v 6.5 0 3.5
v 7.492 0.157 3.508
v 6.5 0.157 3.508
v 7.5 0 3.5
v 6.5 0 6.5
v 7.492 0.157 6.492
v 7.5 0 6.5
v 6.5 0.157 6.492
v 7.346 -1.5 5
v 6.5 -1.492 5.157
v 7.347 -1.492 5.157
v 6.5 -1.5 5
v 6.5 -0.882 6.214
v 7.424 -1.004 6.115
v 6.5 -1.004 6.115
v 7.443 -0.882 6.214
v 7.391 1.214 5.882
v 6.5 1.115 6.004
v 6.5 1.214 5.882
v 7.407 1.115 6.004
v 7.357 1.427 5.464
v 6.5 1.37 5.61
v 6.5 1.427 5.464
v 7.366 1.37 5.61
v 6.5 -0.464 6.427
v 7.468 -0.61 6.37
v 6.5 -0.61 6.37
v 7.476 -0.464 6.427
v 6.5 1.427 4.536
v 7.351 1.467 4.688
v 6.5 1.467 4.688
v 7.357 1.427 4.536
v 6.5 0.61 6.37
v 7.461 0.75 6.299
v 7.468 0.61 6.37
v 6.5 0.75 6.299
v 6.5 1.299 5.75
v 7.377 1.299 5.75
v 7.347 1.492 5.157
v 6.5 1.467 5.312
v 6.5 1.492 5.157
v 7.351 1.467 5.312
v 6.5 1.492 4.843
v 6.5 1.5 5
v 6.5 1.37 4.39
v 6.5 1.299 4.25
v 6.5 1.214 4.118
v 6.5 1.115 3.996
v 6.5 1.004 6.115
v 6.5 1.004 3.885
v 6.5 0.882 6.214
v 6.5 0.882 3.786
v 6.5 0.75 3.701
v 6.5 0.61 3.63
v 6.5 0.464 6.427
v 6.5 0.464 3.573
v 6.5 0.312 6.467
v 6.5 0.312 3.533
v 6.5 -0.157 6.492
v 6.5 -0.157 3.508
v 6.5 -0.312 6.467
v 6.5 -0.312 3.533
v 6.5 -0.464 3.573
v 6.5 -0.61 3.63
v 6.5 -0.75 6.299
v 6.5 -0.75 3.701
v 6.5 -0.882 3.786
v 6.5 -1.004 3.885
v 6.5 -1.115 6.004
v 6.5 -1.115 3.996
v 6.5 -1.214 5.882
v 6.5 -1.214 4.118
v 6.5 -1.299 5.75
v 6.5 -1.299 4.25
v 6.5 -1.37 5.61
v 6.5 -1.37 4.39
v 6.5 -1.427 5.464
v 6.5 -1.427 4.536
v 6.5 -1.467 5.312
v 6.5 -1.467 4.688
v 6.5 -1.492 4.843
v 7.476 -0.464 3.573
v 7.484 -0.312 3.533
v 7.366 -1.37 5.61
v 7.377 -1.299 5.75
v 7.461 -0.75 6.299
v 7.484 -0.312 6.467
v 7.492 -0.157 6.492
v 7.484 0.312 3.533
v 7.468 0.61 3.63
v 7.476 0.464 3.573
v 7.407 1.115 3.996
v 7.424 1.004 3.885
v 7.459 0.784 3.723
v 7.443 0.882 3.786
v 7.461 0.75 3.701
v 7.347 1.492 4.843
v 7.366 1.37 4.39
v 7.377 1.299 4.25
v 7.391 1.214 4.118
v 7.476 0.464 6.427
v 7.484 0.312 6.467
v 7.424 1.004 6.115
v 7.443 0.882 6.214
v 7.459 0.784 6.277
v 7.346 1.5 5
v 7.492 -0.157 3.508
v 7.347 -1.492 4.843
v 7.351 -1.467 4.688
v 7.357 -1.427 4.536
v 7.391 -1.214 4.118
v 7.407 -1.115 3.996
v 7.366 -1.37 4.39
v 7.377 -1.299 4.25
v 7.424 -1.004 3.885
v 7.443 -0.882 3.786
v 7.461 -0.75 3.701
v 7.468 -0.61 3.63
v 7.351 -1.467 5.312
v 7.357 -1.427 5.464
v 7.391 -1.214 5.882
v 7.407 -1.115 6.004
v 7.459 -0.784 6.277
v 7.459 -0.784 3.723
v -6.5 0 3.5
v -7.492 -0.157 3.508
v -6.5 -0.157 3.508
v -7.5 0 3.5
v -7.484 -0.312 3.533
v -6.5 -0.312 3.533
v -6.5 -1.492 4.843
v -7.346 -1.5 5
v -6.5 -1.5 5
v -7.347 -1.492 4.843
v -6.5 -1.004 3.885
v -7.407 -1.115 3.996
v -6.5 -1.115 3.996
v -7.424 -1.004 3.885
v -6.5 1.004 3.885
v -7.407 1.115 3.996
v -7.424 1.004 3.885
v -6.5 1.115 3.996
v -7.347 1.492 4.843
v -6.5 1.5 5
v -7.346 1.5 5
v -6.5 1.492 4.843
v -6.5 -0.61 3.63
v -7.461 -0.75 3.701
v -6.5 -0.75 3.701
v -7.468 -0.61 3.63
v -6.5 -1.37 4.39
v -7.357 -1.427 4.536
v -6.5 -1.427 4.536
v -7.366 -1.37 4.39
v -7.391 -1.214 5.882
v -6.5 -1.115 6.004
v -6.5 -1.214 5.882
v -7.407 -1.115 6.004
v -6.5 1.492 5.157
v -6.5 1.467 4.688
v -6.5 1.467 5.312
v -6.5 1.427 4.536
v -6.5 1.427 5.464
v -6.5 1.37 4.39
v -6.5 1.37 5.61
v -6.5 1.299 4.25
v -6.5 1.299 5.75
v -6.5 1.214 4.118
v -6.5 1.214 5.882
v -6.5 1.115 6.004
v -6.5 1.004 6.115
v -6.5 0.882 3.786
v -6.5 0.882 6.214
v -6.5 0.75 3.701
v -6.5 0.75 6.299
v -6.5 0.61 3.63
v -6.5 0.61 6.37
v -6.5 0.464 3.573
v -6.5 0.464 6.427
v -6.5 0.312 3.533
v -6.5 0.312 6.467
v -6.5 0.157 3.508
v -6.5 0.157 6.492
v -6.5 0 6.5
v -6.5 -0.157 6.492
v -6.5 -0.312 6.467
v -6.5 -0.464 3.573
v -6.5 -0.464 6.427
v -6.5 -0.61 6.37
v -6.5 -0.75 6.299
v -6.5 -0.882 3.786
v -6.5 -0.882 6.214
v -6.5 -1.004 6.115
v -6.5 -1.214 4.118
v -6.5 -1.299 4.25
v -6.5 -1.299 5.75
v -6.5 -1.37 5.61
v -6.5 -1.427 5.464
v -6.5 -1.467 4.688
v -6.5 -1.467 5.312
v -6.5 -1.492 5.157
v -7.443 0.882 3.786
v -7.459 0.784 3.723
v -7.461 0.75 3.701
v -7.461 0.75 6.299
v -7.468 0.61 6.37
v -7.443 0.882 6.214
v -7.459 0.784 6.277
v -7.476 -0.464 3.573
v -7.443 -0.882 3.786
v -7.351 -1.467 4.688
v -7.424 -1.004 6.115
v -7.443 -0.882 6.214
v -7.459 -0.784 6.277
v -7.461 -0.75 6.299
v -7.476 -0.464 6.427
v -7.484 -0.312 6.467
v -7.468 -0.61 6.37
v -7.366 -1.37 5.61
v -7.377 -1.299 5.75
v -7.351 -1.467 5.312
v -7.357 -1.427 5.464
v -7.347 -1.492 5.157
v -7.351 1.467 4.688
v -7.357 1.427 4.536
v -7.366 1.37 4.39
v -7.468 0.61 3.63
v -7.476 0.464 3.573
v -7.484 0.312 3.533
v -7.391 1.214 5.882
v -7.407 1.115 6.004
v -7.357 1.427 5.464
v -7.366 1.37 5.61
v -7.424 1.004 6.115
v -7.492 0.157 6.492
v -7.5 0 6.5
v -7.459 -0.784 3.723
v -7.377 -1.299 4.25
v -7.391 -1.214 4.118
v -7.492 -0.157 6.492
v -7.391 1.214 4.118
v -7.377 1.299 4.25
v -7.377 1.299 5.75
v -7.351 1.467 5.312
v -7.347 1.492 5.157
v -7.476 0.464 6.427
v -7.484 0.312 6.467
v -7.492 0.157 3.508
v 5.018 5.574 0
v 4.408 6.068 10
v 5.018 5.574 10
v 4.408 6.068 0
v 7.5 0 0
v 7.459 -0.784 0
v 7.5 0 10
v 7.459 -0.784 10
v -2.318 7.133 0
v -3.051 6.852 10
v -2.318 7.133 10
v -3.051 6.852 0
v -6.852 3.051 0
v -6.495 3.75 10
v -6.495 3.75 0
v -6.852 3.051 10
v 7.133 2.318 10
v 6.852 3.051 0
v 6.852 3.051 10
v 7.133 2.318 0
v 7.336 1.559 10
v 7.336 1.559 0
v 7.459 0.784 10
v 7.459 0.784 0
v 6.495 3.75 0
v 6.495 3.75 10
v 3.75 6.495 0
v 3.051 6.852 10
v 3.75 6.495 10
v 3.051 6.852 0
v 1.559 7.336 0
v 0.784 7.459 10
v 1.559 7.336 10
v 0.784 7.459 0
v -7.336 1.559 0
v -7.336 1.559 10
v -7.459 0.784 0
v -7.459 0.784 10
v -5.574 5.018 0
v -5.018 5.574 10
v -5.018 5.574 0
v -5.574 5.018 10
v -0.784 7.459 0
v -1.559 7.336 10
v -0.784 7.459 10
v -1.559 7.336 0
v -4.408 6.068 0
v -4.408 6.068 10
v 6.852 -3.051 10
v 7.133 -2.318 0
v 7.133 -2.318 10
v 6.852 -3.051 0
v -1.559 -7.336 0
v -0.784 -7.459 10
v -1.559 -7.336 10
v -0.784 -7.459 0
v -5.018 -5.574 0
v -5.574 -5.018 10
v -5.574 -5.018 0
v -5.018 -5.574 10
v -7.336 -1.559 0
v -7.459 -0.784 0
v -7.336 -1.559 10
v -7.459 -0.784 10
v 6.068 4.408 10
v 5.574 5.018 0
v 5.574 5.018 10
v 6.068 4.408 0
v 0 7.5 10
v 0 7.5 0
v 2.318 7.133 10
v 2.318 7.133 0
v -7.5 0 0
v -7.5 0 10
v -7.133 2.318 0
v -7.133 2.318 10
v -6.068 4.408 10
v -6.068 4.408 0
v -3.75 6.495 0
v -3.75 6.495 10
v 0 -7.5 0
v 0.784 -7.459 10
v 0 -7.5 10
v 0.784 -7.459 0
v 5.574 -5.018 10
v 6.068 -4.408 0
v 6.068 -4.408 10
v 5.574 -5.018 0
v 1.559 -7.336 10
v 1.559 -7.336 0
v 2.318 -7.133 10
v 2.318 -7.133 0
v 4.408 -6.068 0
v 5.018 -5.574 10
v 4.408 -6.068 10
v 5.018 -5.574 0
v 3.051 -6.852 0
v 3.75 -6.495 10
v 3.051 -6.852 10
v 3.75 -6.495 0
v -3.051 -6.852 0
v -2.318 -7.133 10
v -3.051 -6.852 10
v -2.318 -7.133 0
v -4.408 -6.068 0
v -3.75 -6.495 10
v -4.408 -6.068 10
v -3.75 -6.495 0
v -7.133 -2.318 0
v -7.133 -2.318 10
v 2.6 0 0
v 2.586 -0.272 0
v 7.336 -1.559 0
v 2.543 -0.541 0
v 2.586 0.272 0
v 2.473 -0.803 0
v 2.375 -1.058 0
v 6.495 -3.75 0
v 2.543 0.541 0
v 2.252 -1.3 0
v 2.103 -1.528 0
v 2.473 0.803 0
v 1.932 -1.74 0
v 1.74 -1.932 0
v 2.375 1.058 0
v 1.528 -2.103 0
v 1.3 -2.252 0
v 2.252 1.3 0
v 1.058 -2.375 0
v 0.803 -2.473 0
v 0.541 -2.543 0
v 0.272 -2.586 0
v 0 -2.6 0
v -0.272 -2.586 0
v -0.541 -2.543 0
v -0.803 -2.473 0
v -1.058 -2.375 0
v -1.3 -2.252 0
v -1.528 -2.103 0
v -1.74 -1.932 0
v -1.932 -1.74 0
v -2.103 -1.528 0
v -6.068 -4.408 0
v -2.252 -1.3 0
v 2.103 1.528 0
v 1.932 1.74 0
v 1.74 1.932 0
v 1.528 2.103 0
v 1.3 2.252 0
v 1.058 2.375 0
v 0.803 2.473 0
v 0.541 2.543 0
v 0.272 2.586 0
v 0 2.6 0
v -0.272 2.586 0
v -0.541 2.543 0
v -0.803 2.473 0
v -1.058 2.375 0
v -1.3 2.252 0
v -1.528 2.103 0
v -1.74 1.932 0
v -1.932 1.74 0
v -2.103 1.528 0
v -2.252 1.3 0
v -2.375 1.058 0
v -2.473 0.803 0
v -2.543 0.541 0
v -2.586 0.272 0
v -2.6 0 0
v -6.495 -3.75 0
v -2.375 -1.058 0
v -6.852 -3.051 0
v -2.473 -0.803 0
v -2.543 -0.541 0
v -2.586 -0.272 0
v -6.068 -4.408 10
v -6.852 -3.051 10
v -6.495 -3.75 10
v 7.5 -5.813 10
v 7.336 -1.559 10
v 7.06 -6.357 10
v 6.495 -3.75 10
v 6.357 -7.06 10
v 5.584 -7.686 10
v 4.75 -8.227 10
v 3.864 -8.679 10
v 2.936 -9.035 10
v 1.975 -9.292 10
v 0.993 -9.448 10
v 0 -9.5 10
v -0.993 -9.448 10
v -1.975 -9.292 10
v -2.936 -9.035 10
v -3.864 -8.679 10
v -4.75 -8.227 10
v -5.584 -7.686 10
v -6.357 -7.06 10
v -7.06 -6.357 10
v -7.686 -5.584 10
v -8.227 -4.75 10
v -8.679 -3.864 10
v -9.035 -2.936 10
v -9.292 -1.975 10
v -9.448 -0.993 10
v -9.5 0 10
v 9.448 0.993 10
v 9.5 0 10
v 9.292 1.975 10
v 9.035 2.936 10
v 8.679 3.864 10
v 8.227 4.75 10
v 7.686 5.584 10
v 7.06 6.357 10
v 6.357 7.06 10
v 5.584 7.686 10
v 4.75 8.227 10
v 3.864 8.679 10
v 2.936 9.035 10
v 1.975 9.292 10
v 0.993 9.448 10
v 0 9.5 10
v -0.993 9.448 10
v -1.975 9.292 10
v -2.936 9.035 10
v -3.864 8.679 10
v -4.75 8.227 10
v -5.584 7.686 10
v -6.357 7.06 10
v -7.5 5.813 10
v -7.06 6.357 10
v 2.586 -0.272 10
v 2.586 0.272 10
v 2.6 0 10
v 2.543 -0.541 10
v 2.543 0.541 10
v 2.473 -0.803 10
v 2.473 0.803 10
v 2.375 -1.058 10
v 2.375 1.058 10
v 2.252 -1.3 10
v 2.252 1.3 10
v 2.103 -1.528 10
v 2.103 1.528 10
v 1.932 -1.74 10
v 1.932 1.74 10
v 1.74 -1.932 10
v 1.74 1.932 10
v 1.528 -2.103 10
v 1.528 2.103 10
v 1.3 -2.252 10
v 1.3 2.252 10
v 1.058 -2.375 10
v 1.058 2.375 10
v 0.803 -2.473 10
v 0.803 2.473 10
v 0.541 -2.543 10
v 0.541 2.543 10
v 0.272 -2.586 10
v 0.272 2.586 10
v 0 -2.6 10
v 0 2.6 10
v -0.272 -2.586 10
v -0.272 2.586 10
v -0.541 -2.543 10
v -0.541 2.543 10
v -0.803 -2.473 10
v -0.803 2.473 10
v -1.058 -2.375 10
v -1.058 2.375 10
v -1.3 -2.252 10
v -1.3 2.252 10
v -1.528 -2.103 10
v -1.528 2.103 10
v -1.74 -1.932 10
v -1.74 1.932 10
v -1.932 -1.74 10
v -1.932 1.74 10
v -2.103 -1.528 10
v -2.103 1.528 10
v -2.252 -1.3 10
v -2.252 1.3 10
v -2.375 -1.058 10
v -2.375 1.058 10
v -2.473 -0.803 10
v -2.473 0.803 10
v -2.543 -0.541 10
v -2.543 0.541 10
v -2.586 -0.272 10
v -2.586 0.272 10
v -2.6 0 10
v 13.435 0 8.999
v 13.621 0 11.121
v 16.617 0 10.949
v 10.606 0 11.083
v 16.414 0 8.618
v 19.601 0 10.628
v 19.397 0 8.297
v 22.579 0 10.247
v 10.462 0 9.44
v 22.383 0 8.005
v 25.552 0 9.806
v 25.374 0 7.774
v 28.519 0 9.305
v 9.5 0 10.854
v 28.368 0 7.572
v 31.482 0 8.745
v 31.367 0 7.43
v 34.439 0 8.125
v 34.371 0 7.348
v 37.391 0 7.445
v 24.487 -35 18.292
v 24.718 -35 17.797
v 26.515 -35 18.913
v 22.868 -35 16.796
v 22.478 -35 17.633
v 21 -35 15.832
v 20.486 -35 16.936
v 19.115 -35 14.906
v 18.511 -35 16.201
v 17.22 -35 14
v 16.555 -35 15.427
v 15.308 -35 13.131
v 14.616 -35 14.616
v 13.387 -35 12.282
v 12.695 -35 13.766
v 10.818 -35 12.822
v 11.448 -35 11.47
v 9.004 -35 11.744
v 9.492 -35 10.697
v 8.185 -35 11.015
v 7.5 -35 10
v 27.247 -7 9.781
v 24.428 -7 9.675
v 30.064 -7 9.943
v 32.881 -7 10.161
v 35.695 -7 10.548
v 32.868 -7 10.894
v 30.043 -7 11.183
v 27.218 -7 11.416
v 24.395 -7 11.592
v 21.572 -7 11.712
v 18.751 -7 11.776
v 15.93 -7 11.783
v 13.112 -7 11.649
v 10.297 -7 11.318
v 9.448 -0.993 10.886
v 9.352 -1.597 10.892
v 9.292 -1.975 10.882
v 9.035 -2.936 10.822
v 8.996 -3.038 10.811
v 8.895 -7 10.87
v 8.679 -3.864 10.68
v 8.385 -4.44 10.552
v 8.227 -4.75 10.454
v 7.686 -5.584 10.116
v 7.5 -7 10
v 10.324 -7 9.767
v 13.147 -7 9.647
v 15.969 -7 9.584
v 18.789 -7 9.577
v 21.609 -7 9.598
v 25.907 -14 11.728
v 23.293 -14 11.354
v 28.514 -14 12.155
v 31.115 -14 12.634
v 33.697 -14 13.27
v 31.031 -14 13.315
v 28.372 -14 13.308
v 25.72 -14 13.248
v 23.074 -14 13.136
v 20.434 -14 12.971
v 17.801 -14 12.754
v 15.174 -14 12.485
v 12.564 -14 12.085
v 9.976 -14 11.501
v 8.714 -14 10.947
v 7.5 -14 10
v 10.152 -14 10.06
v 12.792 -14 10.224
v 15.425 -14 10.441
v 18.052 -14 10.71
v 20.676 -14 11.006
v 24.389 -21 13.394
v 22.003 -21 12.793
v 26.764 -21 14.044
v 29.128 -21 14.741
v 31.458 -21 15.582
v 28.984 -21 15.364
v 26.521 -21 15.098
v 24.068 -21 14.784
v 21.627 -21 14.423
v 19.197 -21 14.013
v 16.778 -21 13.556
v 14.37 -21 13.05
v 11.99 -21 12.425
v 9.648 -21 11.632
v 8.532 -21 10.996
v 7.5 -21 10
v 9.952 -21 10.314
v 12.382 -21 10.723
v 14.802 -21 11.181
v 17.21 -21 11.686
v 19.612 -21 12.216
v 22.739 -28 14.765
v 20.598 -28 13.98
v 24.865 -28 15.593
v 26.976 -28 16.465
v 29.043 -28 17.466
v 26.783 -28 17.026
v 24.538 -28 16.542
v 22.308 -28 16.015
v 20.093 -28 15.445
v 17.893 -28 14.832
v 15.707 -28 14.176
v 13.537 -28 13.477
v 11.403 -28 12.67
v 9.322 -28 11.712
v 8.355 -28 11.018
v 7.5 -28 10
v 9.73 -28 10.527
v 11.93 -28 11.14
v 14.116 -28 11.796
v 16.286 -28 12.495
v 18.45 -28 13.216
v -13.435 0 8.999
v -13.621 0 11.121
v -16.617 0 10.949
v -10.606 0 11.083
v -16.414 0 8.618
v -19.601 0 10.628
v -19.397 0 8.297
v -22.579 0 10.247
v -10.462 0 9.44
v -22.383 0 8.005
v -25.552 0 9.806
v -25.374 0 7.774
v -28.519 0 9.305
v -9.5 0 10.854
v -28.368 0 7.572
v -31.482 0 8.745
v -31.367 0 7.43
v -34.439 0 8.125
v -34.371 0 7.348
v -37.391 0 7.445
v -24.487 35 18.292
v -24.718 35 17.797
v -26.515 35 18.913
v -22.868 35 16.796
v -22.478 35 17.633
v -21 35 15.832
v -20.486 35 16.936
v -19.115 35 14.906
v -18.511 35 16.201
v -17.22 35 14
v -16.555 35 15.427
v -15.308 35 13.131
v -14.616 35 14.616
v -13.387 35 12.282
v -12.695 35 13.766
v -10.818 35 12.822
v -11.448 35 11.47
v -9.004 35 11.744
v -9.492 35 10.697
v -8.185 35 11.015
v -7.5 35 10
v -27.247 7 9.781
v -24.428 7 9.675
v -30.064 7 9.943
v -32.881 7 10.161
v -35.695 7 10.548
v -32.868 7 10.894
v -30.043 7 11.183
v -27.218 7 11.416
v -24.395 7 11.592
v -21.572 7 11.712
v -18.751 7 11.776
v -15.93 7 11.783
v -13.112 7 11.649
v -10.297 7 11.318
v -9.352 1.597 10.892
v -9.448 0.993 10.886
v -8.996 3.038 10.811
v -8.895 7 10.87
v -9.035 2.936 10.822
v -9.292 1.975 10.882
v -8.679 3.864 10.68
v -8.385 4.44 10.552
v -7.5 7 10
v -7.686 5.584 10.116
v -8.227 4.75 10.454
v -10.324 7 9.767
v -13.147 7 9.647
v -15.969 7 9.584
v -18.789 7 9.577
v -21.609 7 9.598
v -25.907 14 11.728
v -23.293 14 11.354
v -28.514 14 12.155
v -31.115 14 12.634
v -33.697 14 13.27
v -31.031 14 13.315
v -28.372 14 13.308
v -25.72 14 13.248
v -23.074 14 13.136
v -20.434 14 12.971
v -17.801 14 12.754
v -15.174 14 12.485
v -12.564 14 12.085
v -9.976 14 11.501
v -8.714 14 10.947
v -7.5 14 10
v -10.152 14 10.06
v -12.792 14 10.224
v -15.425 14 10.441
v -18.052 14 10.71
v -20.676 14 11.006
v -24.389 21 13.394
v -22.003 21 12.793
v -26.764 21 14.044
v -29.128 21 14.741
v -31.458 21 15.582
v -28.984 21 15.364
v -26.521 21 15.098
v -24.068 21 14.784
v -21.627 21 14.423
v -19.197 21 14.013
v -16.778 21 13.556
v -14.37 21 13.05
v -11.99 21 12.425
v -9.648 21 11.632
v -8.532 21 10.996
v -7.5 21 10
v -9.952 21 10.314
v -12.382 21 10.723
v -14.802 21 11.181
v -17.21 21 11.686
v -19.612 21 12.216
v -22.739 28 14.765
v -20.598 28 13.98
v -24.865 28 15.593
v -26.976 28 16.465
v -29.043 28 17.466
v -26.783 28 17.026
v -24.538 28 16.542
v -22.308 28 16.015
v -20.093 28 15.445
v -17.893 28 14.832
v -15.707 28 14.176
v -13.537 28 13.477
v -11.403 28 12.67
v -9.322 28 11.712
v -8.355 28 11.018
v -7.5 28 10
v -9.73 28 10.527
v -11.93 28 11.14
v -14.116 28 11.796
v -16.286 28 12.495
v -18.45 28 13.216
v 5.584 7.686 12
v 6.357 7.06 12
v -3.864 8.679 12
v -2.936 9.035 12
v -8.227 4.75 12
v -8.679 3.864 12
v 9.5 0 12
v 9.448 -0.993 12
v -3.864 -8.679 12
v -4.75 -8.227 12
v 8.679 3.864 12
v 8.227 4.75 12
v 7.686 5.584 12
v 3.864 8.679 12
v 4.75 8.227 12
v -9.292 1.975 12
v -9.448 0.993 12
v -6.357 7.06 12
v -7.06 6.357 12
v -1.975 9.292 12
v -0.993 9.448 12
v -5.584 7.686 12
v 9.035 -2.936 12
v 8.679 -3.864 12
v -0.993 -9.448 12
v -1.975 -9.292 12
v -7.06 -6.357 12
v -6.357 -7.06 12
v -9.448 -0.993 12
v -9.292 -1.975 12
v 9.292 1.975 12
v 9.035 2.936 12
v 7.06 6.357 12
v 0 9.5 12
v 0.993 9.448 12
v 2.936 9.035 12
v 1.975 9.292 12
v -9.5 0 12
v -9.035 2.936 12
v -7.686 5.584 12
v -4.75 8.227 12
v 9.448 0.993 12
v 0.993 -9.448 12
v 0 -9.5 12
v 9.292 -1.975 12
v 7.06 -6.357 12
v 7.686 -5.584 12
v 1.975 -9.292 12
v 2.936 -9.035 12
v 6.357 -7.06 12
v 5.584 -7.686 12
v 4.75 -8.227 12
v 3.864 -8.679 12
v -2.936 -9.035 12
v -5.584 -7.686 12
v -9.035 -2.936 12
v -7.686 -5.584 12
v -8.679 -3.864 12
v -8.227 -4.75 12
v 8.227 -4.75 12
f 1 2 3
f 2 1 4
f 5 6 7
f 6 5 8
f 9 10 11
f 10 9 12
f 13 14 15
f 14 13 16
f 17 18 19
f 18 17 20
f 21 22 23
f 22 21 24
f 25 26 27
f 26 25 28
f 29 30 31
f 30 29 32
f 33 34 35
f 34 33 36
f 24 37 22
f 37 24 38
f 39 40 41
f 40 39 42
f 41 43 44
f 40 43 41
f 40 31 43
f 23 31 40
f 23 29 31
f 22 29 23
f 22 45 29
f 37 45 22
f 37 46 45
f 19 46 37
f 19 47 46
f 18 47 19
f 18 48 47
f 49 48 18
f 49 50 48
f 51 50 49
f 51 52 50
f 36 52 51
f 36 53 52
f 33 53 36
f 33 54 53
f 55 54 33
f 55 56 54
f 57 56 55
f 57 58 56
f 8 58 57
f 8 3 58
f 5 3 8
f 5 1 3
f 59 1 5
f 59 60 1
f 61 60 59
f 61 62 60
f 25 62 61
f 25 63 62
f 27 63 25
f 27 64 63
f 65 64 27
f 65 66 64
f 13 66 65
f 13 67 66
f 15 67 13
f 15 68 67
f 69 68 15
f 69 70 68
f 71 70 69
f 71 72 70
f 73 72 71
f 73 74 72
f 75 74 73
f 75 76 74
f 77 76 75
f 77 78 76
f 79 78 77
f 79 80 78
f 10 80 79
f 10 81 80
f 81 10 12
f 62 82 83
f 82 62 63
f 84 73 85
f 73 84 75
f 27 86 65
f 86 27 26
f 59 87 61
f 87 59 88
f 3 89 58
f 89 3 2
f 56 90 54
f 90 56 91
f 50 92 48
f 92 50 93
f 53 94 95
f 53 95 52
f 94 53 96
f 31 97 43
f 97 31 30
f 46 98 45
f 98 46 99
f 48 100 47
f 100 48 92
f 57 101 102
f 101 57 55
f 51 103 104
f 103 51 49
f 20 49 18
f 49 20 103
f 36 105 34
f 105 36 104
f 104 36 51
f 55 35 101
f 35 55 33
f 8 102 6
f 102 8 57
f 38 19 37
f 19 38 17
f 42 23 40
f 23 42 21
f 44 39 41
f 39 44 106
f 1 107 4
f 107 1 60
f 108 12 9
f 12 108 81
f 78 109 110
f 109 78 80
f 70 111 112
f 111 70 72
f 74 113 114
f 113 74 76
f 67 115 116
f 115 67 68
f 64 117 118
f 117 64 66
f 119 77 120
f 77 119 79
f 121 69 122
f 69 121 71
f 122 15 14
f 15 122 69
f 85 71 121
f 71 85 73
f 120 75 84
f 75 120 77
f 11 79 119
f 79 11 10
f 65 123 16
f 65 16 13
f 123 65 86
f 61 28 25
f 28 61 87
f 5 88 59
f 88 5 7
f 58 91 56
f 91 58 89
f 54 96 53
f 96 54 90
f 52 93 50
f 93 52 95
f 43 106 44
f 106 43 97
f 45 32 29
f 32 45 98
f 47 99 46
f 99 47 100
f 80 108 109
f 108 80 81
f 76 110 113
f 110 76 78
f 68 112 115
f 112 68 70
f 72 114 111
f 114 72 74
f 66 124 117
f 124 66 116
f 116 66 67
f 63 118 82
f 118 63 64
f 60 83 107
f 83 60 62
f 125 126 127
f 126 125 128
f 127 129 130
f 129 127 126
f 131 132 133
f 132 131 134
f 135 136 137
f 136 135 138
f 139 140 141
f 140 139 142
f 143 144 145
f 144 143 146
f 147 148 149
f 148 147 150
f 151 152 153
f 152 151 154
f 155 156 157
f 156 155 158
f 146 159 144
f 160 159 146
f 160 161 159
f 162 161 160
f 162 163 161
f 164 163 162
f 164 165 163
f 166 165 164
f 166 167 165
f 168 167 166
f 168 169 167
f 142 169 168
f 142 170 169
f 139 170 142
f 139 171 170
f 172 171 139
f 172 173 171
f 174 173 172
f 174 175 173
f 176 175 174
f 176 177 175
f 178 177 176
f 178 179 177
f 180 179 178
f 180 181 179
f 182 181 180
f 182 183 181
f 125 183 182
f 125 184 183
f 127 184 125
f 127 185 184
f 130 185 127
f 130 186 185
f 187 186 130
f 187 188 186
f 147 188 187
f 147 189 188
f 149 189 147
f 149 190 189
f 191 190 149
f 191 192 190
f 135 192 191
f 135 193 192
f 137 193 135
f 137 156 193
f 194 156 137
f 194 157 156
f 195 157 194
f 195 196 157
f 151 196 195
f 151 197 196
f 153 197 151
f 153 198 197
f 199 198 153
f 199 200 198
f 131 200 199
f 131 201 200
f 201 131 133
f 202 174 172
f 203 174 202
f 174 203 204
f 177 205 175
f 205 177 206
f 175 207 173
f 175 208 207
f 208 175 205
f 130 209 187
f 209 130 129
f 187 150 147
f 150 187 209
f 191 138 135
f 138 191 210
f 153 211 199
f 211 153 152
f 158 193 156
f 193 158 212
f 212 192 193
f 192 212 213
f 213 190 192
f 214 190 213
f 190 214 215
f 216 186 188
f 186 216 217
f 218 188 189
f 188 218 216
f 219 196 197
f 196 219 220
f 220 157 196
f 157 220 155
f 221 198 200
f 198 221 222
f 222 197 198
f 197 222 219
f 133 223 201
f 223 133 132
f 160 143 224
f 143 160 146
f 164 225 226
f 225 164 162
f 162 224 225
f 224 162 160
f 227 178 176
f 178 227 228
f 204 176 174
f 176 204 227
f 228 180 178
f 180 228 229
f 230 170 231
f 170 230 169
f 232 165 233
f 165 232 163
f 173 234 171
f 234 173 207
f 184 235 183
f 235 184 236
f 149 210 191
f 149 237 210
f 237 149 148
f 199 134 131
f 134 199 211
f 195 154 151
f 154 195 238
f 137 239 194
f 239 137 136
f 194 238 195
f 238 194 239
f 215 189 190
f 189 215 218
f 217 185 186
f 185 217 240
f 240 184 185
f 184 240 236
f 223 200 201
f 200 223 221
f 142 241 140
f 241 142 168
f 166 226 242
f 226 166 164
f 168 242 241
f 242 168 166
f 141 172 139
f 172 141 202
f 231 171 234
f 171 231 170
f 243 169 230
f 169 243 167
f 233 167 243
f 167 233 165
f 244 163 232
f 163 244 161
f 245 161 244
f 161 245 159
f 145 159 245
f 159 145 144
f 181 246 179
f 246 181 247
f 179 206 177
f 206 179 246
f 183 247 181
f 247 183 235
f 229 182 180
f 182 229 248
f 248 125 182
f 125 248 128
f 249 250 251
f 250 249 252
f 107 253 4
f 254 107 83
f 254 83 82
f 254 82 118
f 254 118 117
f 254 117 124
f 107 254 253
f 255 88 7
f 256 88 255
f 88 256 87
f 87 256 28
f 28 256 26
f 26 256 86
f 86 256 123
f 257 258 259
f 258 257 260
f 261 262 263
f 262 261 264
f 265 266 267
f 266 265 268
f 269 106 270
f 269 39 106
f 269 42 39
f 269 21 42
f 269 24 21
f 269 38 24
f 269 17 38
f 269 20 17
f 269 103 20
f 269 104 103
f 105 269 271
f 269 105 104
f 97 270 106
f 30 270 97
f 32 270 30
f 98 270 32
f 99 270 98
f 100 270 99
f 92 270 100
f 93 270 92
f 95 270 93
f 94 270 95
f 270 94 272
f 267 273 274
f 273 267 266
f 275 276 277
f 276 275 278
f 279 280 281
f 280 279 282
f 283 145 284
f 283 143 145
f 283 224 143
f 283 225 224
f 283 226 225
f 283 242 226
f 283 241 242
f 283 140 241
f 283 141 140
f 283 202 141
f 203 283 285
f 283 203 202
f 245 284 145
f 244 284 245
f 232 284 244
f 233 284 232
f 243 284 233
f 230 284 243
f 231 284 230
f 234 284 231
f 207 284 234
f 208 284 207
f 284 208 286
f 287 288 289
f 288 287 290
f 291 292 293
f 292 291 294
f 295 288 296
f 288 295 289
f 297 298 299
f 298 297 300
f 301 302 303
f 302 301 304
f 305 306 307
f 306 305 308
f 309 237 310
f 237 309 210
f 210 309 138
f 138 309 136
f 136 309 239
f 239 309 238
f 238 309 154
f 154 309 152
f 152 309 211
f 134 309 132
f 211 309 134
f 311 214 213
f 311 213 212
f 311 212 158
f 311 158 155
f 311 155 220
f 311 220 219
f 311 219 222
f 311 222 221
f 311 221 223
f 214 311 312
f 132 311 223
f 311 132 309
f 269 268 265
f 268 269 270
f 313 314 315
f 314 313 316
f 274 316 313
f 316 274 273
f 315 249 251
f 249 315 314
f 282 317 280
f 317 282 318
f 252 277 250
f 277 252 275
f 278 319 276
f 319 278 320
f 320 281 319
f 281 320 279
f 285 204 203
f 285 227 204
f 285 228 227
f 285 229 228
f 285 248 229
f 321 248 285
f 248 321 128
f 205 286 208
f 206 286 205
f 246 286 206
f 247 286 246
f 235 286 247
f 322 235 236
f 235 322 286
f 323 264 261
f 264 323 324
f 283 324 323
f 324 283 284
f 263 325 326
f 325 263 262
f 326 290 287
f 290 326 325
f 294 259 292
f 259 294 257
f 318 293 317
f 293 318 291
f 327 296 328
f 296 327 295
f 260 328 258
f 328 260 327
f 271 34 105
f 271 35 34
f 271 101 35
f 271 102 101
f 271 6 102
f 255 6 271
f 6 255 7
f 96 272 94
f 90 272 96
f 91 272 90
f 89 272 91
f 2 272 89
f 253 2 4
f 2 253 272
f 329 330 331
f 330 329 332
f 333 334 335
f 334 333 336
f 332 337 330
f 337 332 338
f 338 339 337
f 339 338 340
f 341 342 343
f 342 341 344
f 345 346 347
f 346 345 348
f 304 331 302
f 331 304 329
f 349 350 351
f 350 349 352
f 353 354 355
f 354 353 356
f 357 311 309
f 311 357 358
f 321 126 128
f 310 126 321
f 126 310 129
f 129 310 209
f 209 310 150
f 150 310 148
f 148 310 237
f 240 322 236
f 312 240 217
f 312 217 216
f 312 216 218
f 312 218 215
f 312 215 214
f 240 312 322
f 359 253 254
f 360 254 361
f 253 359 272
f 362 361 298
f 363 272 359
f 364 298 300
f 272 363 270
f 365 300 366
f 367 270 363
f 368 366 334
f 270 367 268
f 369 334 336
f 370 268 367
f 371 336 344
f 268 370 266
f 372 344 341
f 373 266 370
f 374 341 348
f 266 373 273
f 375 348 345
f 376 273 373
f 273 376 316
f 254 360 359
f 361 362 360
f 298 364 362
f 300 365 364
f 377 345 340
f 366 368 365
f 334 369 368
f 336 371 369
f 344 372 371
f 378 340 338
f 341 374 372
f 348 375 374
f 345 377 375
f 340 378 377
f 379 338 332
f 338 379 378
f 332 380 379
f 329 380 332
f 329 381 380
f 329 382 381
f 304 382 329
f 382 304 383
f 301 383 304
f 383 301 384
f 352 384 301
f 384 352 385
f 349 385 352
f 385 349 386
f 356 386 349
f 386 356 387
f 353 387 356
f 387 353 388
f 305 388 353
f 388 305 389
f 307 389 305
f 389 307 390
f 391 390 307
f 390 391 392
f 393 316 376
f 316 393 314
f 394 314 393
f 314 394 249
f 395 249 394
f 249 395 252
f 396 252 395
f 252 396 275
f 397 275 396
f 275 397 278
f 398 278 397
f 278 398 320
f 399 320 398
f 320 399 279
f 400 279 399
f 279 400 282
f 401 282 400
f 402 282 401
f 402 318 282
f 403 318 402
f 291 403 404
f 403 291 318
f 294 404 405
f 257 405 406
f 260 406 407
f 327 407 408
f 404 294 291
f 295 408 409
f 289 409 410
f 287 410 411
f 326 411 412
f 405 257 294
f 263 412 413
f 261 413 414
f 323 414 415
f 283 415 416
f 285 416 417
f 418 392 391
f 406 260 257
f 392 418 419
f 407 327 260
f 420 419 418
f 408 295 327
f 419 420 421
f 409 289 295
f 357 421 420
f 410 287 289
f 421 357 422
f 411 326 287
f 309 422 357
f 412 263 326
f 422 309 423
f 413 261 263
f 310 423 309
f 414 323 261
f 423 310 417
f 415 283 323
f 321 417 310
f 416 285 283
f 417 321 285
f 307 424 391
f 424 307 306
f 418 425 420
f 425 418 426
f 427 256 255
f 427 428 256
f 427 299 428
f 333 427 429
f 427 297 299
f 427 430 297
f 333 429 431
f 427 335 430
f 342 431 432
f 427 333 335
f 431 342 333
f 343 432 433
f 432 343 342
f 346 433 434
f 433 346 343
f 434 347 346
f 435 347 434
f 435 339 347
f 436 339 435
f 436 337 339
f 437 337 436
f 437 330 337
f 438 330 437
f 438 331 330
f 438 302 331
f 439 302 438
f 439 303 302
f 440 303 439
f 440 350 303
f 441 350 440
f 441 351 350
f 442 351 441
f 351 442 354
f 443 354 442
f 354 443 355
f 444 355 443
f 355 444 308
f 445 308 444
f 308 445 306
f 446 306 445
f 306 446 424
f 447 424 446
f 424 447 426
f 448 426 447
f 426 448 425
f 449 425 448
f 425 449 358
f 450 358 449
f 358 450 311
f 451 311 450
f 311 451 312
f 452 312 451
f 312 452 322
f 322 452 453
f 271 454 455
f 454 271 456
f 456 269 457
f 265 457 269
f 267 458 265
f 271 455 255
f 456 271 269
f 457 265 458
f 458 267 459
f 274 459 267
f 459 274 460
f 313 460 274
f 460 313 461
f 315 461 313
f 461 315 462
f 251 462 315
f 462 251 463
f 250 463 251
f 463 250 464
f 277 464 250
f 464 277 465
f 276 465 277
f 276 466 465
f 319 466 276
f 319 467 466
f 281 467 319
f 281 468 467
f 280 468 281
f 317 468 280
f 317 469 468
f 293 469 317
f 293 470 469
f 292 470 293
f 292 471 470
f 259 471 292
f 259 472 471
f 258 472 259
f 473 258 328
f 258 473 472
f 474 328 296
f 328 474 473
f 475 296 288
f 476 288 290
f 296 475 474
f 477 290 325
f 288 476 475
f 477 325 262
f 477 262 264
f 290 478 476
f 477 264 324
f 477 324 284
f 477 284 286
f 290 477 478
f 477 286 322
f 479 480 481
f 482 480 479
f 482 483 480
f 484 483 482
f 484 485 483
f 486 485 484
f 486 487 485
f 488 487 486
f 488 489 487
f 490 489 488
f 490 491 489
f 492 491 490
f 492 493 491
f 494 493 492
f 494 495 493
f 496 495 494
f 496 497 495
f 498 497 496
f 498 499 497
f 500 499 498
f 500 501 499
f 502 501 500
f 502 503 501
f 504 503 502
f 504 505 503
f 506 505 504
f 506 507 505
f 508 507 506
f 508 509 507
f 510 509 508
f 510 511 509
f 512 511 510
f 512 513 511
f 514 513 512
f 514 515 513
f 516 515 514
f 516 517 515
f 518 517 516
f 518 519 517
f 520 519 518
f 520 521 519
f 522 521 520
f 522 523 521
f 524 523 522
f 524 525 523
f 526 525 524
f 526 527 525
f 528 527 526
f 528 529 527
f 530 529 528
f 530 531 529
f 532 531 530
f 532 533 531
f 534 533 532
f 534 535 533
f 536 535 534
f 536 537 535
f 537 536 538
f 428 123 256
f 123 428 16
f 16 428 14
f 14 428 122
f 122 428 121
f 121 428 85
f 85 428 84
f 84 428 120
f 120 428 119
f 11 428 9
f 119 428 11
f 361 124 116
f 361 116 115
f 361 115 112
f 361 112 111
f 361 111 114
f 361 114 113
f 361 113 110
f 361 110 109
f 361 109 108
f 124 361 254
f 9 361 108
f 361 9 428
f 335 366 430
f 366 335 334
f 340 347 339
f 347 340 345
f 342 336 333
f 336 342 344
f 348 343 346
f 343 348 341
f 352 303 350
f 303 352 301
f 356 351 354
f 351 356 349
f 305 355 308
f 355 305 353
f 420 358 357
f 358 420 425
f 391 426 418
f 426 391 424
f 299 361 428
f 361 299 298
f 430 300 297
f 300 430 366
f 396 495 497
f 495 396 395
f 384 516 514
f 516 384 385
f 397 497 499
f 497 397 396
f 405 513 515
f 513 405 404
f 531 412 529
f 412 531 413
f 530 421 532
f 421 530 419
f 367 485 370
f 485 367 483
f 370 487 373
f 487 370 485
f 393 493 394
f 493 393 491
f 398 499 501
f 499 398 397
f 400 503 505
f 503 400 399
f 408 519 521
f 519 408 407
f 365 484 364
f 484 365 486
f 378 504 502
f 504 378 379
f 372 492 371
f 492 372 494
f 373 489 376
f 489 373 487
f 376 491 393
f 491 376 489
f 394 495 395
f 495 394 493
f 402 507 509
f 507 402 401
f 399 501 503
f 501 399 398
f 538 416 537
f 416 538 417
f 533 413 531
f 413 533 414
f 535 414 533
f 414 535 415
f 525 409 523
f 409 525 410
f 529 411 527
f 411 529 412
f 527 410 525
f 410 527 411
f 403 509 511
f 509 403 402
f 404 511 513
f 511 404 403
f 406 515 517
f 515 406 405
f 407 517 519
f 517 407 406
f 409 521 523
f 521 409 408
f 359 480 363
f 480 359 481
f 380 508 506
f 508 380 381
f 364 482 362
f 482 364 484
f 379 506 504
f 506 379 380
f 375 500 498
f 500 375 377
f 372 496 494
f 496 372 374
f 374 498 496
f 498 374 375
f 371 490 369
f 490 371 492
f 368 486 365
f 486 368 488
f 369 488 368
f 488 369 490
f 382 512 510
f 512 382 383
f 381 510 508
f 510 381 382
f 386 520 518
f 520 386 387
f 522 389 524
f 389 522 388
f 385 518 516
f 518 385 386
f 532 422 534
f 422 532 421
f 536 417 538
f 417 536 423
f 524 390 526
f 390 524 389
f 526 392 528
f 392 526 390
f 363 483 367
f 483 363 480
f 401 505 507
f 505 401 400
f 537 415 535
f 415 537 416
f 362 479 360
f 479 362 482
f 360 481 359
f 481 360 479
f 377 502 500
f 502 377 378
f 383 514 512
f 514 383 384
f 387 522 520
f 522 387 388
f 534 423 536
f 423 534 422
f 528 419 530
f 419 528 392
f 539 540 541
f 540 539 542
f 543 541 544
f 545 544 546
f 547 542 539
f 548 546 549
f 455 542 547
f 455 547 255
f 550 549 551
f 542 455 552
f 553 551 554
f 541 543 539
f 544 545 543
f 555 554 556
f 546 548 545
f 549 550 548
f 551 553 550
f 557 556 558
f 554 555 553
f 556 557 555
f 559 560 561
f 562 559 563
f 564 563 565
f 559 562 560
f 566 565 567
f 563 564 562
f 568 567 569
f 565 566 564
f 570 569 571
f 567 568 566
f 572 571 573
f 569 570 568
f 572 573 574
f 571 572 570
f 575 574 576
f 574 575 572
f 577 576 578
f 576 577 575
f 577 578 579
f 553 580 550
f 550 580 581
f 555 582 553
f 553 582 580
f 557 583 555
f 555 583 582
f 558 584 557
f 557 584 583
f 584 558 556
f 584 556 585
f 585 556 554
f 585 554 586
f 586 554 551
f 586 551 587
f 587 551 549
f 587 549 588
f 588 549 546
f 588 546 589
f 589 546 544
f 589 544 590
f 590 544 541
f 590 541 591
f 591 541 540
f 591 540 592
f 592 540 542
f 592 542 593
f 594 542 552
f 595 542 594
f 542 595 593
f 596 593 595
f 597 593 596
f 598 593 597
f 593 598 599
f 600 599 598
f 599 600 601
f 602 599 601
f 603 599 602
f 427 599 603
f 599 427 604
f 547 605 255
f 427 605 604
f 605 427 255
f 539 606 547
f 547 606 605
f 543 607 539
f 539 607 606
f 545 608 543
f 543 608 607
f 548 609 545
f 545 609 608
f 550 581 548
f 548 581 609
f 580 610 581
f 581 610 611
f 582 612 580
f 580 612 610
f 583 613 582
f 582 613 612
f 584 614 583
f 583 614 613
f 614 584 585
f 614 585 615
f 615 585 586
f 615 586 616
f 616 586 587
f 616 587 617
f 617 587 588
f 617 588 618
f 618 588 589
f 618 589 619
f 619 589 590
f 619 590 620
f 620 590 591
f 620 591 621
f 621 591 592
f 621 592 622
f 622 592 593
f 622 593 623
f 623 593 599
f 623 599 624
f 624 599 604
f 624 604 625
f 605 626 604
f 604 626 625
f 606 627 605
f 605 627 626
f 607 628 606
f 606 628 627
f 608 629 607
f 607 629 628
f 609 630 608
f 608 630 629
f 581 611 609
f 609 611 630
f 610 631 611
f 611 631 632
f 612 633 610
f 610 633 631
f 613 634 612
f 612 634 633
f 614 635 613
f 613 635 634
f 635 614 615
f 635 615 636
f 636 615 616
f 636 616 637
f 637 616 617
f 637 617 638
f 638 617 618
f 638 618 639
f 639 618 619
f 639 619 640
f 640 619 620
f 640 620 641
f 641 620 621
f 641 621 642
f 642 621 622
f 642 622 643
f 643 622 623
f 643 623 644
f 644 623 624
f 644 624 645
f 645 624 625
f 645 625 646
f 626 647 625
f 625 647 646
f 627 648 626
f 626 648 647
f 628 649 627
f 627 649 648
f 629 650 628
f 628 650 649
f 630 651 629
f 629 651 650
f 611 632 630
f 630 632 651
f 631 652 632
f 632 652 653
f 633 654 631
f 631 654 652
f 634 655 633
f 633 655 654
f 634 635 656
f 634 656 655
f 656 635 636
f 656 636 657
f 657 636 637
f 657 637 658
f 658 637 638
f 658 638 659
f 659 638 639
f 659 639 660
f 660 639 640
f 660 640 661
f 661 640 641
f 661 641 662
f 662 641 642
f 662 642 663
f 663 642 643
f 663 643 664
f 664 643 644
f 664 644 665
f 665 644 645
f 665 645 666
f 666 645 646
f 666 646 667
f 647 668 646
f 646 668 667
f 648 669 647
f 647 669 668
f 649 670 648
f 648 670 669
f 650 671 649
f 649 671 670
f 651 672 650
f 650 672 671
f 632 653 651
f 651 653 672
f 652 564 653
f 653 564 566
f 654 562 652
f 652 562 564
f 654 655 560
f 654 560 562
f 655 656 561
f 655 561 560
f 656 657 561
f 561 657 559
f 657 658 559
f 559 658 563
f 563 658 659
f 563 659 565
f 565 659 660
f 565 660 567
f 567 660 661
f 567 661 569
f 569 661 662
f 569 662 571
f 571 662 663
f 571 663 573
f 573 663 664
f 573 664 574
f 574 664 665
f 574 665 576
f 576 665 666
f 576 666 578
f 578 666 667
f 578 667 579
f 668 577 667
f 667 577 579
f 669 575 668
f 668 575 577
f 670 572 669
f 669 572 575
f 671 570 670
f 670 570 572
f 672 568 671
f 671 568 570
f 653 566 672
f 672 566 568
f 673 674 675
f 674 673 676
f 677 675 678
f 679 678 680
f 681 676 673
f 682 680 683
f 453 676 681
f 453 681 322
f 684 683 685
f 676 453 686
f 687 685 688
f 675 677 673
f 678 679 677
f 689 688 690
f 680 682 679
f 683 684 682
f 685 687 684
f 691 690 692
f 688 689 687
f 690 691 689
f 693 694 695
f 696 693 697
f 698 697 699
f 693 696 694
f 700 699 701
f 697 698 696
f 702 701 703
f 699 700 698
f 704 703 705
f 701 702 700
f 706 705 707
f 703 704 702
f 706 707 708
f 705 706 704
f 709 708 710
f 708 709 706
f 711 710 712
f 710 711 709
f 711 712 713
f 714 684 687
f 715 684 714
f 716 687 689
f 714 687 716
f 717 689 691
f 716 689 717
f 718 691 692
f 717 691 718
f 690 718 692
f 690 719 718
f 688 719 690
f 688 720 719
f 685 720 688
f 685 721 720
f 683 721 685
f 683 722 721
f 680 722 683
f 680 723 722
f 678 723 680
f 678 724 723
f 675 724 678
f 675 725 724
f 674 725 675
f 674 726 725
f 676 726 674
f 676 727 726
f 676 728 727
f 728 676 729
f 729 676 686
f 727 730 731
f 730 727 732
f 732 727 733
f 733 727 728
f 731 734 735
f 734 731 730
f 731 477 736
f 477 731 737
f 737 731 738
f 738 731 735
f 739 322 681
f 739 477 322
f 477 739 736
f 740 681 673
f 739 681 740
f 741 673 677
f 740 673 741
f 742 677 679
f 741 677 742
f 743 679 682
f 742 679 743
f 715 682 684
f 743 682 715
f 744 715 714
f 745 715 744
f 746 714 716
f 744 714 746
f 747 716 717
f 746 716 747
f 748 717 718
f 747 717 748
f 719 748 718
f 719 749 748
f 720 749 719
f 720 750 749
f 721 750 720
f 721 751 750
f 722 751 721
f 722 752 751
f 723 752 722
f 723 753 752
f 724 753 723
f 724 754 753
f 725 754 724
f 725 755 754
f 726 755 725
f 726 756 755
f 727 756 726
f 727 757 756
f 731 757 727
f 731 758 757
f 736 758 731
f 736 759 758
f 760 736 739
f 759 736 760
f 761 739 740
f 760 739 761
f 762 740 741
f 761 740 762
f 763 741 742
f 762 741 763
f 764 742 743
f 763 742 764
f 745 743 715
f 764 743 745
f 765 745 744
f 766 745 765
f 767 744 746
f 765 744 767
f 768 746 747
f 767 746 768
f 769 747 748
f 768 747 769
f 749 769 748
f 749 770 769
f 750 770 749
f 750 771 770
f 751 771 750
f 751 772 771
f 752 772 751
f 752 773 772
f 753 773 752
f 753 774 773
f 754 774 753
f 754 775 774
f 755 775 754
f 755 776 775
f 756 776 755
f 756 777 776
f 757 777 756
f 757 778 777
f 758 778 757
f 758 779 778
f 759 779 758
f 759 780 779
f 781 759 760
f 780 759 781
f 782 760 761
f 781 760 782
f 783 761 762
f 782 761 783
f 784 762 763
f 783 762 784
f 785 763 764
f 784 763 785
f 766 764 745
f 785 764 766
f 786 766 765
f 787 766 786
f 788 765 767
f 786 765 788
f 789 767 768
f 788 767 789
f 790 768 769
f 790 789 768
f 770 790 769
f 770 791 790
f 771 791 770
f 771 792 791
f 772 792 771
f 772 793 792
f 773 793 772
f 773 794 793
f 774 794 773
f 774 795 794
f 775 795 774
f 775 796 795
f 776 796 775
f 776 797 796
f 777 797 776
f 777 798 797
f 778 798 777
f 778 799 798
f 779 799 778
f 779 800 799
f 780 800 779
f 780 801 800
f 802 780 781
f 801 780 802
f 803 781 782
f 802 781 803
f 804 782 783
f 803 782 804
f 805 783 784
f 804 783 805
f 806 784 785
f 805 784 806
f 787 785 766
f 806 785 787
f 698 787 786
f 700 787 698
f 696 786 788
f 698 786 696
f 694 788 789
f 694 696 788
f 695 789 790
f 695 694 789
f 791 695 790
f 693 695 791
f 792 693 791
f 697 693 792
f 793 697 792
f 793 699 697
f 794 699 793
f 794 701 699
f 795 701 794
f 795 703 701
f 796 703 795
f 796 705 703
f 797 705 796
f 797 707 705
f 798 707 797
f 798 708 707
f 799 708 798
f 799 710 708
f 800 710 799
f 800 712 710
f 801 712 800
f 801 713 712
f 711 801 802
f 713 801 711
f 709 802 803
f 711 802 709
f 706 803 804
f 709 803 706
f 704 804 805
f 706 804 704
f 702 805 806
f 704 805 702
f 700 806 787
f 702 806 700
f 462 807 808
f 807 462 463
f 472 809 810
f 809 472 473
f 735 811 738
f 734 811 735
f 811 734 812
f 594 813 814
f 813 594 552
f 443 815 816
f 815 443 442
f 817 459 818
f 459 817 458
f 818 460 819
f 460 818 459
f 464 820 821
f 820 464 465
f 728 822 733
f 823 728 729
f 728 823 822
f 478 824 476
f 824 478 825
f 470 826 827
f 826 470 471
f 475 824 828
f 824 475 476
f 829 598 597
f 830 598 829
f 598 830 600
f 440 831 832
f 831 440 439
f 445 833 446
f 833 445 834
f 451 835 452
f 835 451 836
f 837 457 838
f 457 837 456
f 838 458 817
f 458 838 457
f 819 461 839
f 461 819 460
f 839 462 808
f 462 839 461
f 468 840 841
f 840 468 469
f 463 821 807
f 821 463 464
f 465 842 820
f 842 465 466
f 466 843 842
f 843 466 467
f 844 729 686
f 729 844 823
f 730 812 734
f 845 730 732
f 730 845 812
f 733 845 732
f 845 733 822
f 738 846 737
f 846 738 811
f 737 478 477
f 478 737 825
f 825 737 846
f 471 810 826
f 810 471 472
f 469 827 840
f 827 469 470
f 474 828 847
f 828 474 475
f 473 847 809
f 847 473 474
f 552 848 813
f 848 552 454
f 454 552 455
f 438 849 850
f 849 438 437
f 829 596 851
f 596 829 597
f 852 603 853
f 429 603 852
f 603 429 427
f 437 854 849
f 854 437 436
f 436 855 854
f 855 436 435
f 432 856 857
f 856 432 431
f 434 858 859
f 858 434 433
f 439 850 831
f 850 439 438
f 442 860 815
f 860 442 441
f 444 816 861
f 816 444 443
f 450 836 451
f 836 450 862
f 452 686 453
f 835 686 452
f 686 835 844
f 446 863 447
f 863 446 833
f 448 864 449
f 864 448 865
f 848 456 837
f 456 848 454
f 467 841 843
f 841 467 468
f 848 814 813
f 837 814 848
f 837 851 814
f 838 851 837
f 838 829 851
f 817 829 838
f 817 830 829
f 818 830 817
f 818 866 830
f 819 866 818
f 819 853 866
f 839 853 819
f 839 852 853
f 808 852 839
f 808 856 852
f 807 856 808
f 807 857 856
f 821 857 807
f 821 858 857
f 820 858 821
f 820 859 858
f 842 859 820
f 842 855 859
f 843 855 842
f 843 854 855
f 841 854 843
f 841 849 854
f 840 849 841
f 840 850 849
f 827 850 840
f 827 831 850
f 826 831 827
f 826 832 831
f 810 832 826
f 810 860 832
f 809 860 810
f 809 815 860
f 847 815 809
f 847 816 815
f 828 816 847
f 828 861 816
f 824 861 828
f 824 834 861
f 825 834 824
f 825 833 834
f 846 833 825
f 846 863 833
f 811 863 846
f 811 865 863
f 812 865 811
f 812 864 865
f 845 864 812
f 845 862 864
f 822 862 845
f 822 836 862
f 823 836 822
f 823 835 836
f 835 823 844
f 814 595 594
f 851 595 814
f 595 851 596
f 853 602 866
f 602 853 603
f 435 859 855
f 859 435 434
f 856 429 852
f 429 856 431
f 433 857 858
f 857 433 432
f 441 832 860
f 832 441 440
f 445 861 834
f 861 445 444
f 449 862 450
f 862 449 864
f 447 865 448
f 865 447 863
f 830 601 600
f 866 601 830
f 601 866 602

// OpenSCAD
/*
 * COMPLETE MOTOR + IMPELLER ASSEMBLY
 * For CFD fluid testing and visualization
 * 
 * This model includes:
 *   - Brushless motor (2204-2206 size)
 *   - Motor shaft (5mm)
 *   - Impeller hub
 *   - 3 impeller variants (bladeless, AI-blades, hybrid)
 *   - Mounting plate
 * 
 * Usage:
 *   - Render full assembly: F6
 *   - Export for CFD: Set EXPORT_MODE = "impeller_only"
 *   - Change design: Set IMPELLER_TYPE = "bladeless" | "bladed" | "hybrid"
 */

// ============================================================================
// CONFIGURATION PARAMETERS (AI-Optimizable)
// ============================================================================

// General Settings
$fn = 60;  // Resolution for CFD export (increase to 100 for final)

// Export Mode
EXPORT_MODE = "impeller_only";  // Options: "full_assembly", "impeller_only", "motor_only"

// Impeller Type
IMPELLER_TYPE = "bladed";  // Options: "bladeless", "bladed", "hybrid"

// Motor Specifications (2204-2206 brushless)
MOTOR_DIAMETER = 28;         // mm
MOTOR_HEIGHT = 25;           // mm
MOTOR_SHAFT_DIAMETER = 5;    // mm (standard)
MOTOR_SHAFT_LENGTH = 15;     // mm (extends above motor)
MOTOR_MOUNT_PATTERN = 16;    // mm (16x16 or 19x19 common)
MOTOR_SCREW_DIAMETER = 3;    // M3 screws

// Impeller Parameters - BLADELESS
BLADELESS_OUTER_DIAMETER = 90;    // mm
BLADELESS_AIR_GAP = 0.8;          // mm (optimize: 0.6-1.2)
BLADELESS_THROAT_RATIO = 0.72;    // (optimize: 0.65-0.80)
BLADELESS_EXPANSION_ANGLE = 18;   // degrees (optimize: 12-25)
BLADELESS_RING_THICKNESS = 3;     // mm (optimize: 2-4)
BLADELESS_HEIGHT = 24;            // mm

// Impeller Parameters - BLADED
BLADED_DIAMETER = 85;
BLADED_HUB_DIAMETER = 15;         // mm (optimize: 12-20)
BLADED_BLADE_COUNT = 2;
BLADED_ROOT_CHORD = 30;
BLADED_TIP_CHORD_RATIO = 0.7;    // (optimize: 0.6-0.8)
BLADED_BLADE_THICKNESS = 2;       // mm (optimize: 1.5-3)
BLADED_BLADE_TWIST = -30;
BLADED_ATTACK_ANGLE = -5;
BLADED_BLADE_HEIGHT = 12;         // mm (optimize: 10-15)

// Hub Parameters
HUB_DIAMETER = 15;
HUB_HEIGHT = 10;
HUB_SET_SCREW_DIAMETER = 3;  // M3 set screw

// Mounting Plate
PLATE_SIZE = 50;
PLATE_THICKNESS = 3;

// ============================================================================
// MOTOR MODEL
// ============================================================================

module brushless_motor_2204() {
    color("DarkSlateGray") {
        // Motor can (bell)
        difference() {
            cylinder(h=MOTOR_HEIGHT, d=MOTOR_DIAMETER);
            
            // Hollow inside (weight reduction visualization)
            translate([0, 0, -0.5])
                cylinder(h=MOTOR_HEIGHT - 5, d=MOTOR_DIAMETER - 4);
            
            // Mounting holes
            for(i = [0:3]) {
                rotate([0, 0, i * 90])
                    translate([MOTOR_MOUNT_PATTERN/2, 0, MOTOR_HEIGHT/2])
                        rotate([90, 0, 0])
                            cylinder(h=MOTOR_DIAMETER, d=MOTOR_SCREW_DIAMETER, center=true);
            }
        }
        
        // Motor base
        translate([0, 0, -3])
            cylinder(h=3, d=MOTOR_DIAMETER - 2);
    }
    
    // Motor shaft
    color("Silver")
        translate([0, 0, MOTOR_HEIGHT])
            cylinder(h=MOTOR_SHAFT_LENGTH, d=MOTOR_SHAFT_DIAMETER);
    
    // Shaft tip (for hub attachment)
    color("Silver")
        translate([0, 0, MOTOR_HEIGHT + MOTOR_SHAFT_LENGTH])
            cylinder(h=2, d=MOTOR_SHAFT_DIAMETER - 0.5);
}

// ============================================================================
// IMPELLER HUB
// ============================================================================

module impeller_hub() {
    color("Gray")
    difference() {
        // Hub body
        cylinder(h=HUB_HEIGHT, d=HUB_DIAMETER);
        
        // Shaft hole (5mm + 0.2mm clearance)
        translate([0, 0, -0.5])
            cylinder(h=HUB_HEIGHT + 1, d=MOTOR_SHAFT_DIAMETER + 0.2);
        
        // Set screw holes (2x for balance)
        for(i = [0:1]) {
            rotate([0, 0, i * 180])
                translate([HUB_DIAMETER/2 - 1, 0, HUB_HEIGHT/2])
                    rotate([0, 90, 0])
                        cylinder(h=5, d=HUB_SET_SCREW_DIAMETER);
        }
    }
}

// ============================================================================
// BLADELESS IMPELLER (Dyson-style)
// ============================================================================

module bladeless_impeller() {
    outer_r = BLADELESS_OUTER_DIAMETER / 2;
    throat_r = outer_r * BLADELESS_THROAT_RATIO;
    gap = BLADELESS_AIR_GAP;
    
    color("SkyBlue", 0.7)
    difference() {
        // Outer ring
        rotate_extrude()
            translate([outer_r - BLADELESS_RING_THICKNESS/2, BLADELESS_HEIGHT/2, 0])
                circle(d=BLADELESS_RING_THICKNESS + BLADELESS_HEIGHT);
        
        // Inner air gap (critical for Coanda effect)
        rotate_extrude()
            translate([outer_r - gap - BLADELESS_RING_THICKNESS/2, BLADELESS_HEIGHT/2, 0])
                circle(d=BLADELESS_RING_THICKNESS + BLADELESS_HEIGHT - 2*gap);
    }
    
    // Base plate (connects to hub)
    color("SkyBlue", 0.7)
    translate([0, 0, -2])
        difference() {
            cylinder(h=2, d=outer_r * 2);
            translate([0, 0, -0.5])
                cylinder(h=3, d=HUB_DIAMETER + 1);
        }
    
    // Air inlet (bell-shaped for smooth flow)
    color("SkyBlue", 0.7)
    translate([0, 0, -2]) {
        difference() {
            cylinder(h=15, d1=throat_r * 2, d2=outer_r * 1.8);
            translate([0, 0, -0.5])
                cylinder(h=16, d1=throat_r * 2 - 3, d2=outer_r * 1.8 - 3);
        }
    }
}

// ============================================================================
// AI-OPTIMIZED BLADED IMPELLER (NACA 2412 profile)
// ============================================================================

module naca_2412_blade(chord, height, twist_angle, attack_angle) {
    // Simplified NACA 2412 airfoil profile
    // Using parametric approximation for 3D printing
    
    color("LightSteelBlue", 0.8)
    linear_extrude(height=height, twist=twist_angle, scale=BLADED_TIP_CHORD_RATIO) {
        rotate([0, 0, attack_angle])
        polygon([
            // Upper surface (cambered)
            [0, 0],
            [chord * 0.05, chord * 0.03],
            [chord * 0.1, chord * 0.045],
            [chord * 0.2, chord * 0.055],
            [chord * 0.3, chord * 0.058],
            [chord * 0.4, chord * 0.056],
            [chord * 0.5, chord * 0.052],
            [chord * 0.6, chord * 0.046],
            [chord * 0.7, chord * 0.038],
            [chord * 0.8, chord * 0.028],
            [chord * 0.9, chord * 0.016],
            [chord * 1.0, chord * 0.002],
            // Lower surface (less cambered)
            [chord * 0.9, -chord * 0.010],
            [chord * 0.8, -chord * 0.016],
            [chord * 0.7, -chord * 0.020],
            [chord * 0.6, -chord * 0.022],
            [chord * 0.5, -chord * 0.023],
            [chord * 0.4, -chord * 0.022],
            [chord * 0.3, -chord * 0.020],
            [chord * 0.2, -chord * 0.016],
            [chord * 0.1, -chord * 0.010],
            [chord * 0.05, -chord * 0.005],
        ]);
    }
}

module bladed_impeller() {
    // Blades
    for(i = [0 : BLADED_BLADE_COUNT - 1]) {
        rotate([0, 0, i * (360 / BLADED_BLADE_COUNT)])
            translate([BLADED_HUB_DIAMETER/2, 0, 0])
                rotate([90, 0, 0])
                    naca_2412_blade(
                        BLADED_ROOT_CHORD, 
                        (BLADED_DIAMETER - BLADED_HUB_DIAMETER) / 2,
                        BLADED_BLADE_TWIST,
                        BLADED_ATTACK_ANGLE
                    );
    }
    
    // Hub disk (connects blades)
    color("LightSteelBlue", 0.8)
    cylinder(h=2, d=BLADED_HUB_DIAMETER + 4);
}

// ============================================================================
// HYBRID IMPELLER (Blades inside bladeless ring)
// ============================================================================

module hybrid_impeller() {
    // Outer bladeless ring
    bladeless_impeller();
    
    // Inner bladed impeller (scaled down to fit)
    scale([0.85, 0.85, 1])
        bladed_impeller();
}

// ============================================================================
// MOUNTING PLATE
// ============================================================================

module mounting_plate() {
    color("DimGray")
    difference() {
        // Base plate
        translate([-PLATE_SIZE/2, -PLATE_SIZE/2, 0])
            cube([PLATE_SIZE, PLATE_SIZE, PLATE_THICKNESS]);
        
        // Center hole for motor shaft
        translate([0, 0, -0.5])
            cylinder(h=PLATE_THICKNESS + 1, d=MOTOR_DIAMETER + 2);
        
        // Motor mounting holes
        for(i = [0:3]) {
            rotate([0, 0, i * 90])
                translate([MOTOR_MOUNT_PATTERN/2, 0, -0.5])
                    cylinder(h=PLATE_THICKNESS + 1, d=MOTOR_SCREW_DIAMETER);
        }
    }
}

// ============================================================================
// COMPLETE ASSEMBLY
// ============================================================================

module complete_assembly() {
    // Mounting plate (bottom)
    translate([0, 0, -PLATE_THICKNESS])
        mounting_plate();
    
    // Motor
    translate([0, 0, 0])
        brushless_motor_2204();
    
    // Hub (on shaft)
    translate([0, 0, MOTOR_HEIGHT + MOTOR_SHAFT_LENGTH - 2])
        impeller_hub();
    
    // Impeller (on hub)
    translate([0, 0, MOTOR_HEIGHT + MOTOR_SHAFT_LENGTH + HUB_HEIGHT]) {
        if (IMPELLER_TYPE == "bladeless") {
            bladeless_impeller();
        } else if (IMPELLER_TYPE == "bladed") {
            bladed_impeller();
        } else if (IMPELLER_TYPE == "hybrid") {
            hybrid_impeller();
        }
    }
}

// ============================================================================
// RENDER BASED ON EXPORT MODE
// ============================================================================

if (EXPORT_MODE == "full_assembly") {
    complete_assembly();
} 
else if (EXPORT_MODE == "impeller_only") {
    // For CFD testing - impeller + hub only
    impeller_hub();
    translate([0, 0, HUB_HEIGHT]) {
        if (IMPELLER_TYPE == "bladeless") {
            bladeless_impeller();
        } else if (IMPELLER_TYPE == "bladed") {
            bladed_impeller();
        } else if (IMPELLER_TYPE == "hybrid") {
            hybrid_impeller();
        }
    }
}
else if (EXPORT_MODE == "motor_only") {
    brushless_motor_2204();
}

// ============================================================================
// ANNOTATIONS FOR VISUALIZATION
// ============================================================================

// Uncomment to show dimensions
/*
color("Red", 0.3)
translate([BLADED_DIAMETER/2 + 10, 0, 20])
    text(str("Ø", BLADED_DIAMETER, "mm"), size=5, halign="left");

color("Green", 0.3)
translate([0, BLADED_DIAMETER/2 + 10, 20])
    text(str(BLADED_BLADE_COUNT, " blades"), size=5, halign="center");
*/

// ============================================================================
// EXPORT NOTES
// ============================================================================

/*
 * TO EXPORT FOR CFD TESTING:
 * 
 * 1. Set EXPORT_MODE = "impeller_only"
 * 2. Set IMPELLER_TYPE = "bladeless" (or "bladed" or "hybrid")
 * 3. Press F6 to render
 * 4. File → Export → Export as STL
 * 5. Use filename: impeller_bladeless_fn60.stl
 * 
 * FOR OPTIMIZATION:
 * - Modify parameters at top (marked with "optimize:")
 * - Re-render and export
 * - Upload to SimScale for CFD
 * - Compare results
 * 
 * RECOMMENDED CFD SETTINGS:
 * - Solver: k-omega SST
 * - RPM: 5000, 7000, 9000
 * - Mesh: 3-5M cells
 * - Boundary: Rotating zone on impeller
 */
